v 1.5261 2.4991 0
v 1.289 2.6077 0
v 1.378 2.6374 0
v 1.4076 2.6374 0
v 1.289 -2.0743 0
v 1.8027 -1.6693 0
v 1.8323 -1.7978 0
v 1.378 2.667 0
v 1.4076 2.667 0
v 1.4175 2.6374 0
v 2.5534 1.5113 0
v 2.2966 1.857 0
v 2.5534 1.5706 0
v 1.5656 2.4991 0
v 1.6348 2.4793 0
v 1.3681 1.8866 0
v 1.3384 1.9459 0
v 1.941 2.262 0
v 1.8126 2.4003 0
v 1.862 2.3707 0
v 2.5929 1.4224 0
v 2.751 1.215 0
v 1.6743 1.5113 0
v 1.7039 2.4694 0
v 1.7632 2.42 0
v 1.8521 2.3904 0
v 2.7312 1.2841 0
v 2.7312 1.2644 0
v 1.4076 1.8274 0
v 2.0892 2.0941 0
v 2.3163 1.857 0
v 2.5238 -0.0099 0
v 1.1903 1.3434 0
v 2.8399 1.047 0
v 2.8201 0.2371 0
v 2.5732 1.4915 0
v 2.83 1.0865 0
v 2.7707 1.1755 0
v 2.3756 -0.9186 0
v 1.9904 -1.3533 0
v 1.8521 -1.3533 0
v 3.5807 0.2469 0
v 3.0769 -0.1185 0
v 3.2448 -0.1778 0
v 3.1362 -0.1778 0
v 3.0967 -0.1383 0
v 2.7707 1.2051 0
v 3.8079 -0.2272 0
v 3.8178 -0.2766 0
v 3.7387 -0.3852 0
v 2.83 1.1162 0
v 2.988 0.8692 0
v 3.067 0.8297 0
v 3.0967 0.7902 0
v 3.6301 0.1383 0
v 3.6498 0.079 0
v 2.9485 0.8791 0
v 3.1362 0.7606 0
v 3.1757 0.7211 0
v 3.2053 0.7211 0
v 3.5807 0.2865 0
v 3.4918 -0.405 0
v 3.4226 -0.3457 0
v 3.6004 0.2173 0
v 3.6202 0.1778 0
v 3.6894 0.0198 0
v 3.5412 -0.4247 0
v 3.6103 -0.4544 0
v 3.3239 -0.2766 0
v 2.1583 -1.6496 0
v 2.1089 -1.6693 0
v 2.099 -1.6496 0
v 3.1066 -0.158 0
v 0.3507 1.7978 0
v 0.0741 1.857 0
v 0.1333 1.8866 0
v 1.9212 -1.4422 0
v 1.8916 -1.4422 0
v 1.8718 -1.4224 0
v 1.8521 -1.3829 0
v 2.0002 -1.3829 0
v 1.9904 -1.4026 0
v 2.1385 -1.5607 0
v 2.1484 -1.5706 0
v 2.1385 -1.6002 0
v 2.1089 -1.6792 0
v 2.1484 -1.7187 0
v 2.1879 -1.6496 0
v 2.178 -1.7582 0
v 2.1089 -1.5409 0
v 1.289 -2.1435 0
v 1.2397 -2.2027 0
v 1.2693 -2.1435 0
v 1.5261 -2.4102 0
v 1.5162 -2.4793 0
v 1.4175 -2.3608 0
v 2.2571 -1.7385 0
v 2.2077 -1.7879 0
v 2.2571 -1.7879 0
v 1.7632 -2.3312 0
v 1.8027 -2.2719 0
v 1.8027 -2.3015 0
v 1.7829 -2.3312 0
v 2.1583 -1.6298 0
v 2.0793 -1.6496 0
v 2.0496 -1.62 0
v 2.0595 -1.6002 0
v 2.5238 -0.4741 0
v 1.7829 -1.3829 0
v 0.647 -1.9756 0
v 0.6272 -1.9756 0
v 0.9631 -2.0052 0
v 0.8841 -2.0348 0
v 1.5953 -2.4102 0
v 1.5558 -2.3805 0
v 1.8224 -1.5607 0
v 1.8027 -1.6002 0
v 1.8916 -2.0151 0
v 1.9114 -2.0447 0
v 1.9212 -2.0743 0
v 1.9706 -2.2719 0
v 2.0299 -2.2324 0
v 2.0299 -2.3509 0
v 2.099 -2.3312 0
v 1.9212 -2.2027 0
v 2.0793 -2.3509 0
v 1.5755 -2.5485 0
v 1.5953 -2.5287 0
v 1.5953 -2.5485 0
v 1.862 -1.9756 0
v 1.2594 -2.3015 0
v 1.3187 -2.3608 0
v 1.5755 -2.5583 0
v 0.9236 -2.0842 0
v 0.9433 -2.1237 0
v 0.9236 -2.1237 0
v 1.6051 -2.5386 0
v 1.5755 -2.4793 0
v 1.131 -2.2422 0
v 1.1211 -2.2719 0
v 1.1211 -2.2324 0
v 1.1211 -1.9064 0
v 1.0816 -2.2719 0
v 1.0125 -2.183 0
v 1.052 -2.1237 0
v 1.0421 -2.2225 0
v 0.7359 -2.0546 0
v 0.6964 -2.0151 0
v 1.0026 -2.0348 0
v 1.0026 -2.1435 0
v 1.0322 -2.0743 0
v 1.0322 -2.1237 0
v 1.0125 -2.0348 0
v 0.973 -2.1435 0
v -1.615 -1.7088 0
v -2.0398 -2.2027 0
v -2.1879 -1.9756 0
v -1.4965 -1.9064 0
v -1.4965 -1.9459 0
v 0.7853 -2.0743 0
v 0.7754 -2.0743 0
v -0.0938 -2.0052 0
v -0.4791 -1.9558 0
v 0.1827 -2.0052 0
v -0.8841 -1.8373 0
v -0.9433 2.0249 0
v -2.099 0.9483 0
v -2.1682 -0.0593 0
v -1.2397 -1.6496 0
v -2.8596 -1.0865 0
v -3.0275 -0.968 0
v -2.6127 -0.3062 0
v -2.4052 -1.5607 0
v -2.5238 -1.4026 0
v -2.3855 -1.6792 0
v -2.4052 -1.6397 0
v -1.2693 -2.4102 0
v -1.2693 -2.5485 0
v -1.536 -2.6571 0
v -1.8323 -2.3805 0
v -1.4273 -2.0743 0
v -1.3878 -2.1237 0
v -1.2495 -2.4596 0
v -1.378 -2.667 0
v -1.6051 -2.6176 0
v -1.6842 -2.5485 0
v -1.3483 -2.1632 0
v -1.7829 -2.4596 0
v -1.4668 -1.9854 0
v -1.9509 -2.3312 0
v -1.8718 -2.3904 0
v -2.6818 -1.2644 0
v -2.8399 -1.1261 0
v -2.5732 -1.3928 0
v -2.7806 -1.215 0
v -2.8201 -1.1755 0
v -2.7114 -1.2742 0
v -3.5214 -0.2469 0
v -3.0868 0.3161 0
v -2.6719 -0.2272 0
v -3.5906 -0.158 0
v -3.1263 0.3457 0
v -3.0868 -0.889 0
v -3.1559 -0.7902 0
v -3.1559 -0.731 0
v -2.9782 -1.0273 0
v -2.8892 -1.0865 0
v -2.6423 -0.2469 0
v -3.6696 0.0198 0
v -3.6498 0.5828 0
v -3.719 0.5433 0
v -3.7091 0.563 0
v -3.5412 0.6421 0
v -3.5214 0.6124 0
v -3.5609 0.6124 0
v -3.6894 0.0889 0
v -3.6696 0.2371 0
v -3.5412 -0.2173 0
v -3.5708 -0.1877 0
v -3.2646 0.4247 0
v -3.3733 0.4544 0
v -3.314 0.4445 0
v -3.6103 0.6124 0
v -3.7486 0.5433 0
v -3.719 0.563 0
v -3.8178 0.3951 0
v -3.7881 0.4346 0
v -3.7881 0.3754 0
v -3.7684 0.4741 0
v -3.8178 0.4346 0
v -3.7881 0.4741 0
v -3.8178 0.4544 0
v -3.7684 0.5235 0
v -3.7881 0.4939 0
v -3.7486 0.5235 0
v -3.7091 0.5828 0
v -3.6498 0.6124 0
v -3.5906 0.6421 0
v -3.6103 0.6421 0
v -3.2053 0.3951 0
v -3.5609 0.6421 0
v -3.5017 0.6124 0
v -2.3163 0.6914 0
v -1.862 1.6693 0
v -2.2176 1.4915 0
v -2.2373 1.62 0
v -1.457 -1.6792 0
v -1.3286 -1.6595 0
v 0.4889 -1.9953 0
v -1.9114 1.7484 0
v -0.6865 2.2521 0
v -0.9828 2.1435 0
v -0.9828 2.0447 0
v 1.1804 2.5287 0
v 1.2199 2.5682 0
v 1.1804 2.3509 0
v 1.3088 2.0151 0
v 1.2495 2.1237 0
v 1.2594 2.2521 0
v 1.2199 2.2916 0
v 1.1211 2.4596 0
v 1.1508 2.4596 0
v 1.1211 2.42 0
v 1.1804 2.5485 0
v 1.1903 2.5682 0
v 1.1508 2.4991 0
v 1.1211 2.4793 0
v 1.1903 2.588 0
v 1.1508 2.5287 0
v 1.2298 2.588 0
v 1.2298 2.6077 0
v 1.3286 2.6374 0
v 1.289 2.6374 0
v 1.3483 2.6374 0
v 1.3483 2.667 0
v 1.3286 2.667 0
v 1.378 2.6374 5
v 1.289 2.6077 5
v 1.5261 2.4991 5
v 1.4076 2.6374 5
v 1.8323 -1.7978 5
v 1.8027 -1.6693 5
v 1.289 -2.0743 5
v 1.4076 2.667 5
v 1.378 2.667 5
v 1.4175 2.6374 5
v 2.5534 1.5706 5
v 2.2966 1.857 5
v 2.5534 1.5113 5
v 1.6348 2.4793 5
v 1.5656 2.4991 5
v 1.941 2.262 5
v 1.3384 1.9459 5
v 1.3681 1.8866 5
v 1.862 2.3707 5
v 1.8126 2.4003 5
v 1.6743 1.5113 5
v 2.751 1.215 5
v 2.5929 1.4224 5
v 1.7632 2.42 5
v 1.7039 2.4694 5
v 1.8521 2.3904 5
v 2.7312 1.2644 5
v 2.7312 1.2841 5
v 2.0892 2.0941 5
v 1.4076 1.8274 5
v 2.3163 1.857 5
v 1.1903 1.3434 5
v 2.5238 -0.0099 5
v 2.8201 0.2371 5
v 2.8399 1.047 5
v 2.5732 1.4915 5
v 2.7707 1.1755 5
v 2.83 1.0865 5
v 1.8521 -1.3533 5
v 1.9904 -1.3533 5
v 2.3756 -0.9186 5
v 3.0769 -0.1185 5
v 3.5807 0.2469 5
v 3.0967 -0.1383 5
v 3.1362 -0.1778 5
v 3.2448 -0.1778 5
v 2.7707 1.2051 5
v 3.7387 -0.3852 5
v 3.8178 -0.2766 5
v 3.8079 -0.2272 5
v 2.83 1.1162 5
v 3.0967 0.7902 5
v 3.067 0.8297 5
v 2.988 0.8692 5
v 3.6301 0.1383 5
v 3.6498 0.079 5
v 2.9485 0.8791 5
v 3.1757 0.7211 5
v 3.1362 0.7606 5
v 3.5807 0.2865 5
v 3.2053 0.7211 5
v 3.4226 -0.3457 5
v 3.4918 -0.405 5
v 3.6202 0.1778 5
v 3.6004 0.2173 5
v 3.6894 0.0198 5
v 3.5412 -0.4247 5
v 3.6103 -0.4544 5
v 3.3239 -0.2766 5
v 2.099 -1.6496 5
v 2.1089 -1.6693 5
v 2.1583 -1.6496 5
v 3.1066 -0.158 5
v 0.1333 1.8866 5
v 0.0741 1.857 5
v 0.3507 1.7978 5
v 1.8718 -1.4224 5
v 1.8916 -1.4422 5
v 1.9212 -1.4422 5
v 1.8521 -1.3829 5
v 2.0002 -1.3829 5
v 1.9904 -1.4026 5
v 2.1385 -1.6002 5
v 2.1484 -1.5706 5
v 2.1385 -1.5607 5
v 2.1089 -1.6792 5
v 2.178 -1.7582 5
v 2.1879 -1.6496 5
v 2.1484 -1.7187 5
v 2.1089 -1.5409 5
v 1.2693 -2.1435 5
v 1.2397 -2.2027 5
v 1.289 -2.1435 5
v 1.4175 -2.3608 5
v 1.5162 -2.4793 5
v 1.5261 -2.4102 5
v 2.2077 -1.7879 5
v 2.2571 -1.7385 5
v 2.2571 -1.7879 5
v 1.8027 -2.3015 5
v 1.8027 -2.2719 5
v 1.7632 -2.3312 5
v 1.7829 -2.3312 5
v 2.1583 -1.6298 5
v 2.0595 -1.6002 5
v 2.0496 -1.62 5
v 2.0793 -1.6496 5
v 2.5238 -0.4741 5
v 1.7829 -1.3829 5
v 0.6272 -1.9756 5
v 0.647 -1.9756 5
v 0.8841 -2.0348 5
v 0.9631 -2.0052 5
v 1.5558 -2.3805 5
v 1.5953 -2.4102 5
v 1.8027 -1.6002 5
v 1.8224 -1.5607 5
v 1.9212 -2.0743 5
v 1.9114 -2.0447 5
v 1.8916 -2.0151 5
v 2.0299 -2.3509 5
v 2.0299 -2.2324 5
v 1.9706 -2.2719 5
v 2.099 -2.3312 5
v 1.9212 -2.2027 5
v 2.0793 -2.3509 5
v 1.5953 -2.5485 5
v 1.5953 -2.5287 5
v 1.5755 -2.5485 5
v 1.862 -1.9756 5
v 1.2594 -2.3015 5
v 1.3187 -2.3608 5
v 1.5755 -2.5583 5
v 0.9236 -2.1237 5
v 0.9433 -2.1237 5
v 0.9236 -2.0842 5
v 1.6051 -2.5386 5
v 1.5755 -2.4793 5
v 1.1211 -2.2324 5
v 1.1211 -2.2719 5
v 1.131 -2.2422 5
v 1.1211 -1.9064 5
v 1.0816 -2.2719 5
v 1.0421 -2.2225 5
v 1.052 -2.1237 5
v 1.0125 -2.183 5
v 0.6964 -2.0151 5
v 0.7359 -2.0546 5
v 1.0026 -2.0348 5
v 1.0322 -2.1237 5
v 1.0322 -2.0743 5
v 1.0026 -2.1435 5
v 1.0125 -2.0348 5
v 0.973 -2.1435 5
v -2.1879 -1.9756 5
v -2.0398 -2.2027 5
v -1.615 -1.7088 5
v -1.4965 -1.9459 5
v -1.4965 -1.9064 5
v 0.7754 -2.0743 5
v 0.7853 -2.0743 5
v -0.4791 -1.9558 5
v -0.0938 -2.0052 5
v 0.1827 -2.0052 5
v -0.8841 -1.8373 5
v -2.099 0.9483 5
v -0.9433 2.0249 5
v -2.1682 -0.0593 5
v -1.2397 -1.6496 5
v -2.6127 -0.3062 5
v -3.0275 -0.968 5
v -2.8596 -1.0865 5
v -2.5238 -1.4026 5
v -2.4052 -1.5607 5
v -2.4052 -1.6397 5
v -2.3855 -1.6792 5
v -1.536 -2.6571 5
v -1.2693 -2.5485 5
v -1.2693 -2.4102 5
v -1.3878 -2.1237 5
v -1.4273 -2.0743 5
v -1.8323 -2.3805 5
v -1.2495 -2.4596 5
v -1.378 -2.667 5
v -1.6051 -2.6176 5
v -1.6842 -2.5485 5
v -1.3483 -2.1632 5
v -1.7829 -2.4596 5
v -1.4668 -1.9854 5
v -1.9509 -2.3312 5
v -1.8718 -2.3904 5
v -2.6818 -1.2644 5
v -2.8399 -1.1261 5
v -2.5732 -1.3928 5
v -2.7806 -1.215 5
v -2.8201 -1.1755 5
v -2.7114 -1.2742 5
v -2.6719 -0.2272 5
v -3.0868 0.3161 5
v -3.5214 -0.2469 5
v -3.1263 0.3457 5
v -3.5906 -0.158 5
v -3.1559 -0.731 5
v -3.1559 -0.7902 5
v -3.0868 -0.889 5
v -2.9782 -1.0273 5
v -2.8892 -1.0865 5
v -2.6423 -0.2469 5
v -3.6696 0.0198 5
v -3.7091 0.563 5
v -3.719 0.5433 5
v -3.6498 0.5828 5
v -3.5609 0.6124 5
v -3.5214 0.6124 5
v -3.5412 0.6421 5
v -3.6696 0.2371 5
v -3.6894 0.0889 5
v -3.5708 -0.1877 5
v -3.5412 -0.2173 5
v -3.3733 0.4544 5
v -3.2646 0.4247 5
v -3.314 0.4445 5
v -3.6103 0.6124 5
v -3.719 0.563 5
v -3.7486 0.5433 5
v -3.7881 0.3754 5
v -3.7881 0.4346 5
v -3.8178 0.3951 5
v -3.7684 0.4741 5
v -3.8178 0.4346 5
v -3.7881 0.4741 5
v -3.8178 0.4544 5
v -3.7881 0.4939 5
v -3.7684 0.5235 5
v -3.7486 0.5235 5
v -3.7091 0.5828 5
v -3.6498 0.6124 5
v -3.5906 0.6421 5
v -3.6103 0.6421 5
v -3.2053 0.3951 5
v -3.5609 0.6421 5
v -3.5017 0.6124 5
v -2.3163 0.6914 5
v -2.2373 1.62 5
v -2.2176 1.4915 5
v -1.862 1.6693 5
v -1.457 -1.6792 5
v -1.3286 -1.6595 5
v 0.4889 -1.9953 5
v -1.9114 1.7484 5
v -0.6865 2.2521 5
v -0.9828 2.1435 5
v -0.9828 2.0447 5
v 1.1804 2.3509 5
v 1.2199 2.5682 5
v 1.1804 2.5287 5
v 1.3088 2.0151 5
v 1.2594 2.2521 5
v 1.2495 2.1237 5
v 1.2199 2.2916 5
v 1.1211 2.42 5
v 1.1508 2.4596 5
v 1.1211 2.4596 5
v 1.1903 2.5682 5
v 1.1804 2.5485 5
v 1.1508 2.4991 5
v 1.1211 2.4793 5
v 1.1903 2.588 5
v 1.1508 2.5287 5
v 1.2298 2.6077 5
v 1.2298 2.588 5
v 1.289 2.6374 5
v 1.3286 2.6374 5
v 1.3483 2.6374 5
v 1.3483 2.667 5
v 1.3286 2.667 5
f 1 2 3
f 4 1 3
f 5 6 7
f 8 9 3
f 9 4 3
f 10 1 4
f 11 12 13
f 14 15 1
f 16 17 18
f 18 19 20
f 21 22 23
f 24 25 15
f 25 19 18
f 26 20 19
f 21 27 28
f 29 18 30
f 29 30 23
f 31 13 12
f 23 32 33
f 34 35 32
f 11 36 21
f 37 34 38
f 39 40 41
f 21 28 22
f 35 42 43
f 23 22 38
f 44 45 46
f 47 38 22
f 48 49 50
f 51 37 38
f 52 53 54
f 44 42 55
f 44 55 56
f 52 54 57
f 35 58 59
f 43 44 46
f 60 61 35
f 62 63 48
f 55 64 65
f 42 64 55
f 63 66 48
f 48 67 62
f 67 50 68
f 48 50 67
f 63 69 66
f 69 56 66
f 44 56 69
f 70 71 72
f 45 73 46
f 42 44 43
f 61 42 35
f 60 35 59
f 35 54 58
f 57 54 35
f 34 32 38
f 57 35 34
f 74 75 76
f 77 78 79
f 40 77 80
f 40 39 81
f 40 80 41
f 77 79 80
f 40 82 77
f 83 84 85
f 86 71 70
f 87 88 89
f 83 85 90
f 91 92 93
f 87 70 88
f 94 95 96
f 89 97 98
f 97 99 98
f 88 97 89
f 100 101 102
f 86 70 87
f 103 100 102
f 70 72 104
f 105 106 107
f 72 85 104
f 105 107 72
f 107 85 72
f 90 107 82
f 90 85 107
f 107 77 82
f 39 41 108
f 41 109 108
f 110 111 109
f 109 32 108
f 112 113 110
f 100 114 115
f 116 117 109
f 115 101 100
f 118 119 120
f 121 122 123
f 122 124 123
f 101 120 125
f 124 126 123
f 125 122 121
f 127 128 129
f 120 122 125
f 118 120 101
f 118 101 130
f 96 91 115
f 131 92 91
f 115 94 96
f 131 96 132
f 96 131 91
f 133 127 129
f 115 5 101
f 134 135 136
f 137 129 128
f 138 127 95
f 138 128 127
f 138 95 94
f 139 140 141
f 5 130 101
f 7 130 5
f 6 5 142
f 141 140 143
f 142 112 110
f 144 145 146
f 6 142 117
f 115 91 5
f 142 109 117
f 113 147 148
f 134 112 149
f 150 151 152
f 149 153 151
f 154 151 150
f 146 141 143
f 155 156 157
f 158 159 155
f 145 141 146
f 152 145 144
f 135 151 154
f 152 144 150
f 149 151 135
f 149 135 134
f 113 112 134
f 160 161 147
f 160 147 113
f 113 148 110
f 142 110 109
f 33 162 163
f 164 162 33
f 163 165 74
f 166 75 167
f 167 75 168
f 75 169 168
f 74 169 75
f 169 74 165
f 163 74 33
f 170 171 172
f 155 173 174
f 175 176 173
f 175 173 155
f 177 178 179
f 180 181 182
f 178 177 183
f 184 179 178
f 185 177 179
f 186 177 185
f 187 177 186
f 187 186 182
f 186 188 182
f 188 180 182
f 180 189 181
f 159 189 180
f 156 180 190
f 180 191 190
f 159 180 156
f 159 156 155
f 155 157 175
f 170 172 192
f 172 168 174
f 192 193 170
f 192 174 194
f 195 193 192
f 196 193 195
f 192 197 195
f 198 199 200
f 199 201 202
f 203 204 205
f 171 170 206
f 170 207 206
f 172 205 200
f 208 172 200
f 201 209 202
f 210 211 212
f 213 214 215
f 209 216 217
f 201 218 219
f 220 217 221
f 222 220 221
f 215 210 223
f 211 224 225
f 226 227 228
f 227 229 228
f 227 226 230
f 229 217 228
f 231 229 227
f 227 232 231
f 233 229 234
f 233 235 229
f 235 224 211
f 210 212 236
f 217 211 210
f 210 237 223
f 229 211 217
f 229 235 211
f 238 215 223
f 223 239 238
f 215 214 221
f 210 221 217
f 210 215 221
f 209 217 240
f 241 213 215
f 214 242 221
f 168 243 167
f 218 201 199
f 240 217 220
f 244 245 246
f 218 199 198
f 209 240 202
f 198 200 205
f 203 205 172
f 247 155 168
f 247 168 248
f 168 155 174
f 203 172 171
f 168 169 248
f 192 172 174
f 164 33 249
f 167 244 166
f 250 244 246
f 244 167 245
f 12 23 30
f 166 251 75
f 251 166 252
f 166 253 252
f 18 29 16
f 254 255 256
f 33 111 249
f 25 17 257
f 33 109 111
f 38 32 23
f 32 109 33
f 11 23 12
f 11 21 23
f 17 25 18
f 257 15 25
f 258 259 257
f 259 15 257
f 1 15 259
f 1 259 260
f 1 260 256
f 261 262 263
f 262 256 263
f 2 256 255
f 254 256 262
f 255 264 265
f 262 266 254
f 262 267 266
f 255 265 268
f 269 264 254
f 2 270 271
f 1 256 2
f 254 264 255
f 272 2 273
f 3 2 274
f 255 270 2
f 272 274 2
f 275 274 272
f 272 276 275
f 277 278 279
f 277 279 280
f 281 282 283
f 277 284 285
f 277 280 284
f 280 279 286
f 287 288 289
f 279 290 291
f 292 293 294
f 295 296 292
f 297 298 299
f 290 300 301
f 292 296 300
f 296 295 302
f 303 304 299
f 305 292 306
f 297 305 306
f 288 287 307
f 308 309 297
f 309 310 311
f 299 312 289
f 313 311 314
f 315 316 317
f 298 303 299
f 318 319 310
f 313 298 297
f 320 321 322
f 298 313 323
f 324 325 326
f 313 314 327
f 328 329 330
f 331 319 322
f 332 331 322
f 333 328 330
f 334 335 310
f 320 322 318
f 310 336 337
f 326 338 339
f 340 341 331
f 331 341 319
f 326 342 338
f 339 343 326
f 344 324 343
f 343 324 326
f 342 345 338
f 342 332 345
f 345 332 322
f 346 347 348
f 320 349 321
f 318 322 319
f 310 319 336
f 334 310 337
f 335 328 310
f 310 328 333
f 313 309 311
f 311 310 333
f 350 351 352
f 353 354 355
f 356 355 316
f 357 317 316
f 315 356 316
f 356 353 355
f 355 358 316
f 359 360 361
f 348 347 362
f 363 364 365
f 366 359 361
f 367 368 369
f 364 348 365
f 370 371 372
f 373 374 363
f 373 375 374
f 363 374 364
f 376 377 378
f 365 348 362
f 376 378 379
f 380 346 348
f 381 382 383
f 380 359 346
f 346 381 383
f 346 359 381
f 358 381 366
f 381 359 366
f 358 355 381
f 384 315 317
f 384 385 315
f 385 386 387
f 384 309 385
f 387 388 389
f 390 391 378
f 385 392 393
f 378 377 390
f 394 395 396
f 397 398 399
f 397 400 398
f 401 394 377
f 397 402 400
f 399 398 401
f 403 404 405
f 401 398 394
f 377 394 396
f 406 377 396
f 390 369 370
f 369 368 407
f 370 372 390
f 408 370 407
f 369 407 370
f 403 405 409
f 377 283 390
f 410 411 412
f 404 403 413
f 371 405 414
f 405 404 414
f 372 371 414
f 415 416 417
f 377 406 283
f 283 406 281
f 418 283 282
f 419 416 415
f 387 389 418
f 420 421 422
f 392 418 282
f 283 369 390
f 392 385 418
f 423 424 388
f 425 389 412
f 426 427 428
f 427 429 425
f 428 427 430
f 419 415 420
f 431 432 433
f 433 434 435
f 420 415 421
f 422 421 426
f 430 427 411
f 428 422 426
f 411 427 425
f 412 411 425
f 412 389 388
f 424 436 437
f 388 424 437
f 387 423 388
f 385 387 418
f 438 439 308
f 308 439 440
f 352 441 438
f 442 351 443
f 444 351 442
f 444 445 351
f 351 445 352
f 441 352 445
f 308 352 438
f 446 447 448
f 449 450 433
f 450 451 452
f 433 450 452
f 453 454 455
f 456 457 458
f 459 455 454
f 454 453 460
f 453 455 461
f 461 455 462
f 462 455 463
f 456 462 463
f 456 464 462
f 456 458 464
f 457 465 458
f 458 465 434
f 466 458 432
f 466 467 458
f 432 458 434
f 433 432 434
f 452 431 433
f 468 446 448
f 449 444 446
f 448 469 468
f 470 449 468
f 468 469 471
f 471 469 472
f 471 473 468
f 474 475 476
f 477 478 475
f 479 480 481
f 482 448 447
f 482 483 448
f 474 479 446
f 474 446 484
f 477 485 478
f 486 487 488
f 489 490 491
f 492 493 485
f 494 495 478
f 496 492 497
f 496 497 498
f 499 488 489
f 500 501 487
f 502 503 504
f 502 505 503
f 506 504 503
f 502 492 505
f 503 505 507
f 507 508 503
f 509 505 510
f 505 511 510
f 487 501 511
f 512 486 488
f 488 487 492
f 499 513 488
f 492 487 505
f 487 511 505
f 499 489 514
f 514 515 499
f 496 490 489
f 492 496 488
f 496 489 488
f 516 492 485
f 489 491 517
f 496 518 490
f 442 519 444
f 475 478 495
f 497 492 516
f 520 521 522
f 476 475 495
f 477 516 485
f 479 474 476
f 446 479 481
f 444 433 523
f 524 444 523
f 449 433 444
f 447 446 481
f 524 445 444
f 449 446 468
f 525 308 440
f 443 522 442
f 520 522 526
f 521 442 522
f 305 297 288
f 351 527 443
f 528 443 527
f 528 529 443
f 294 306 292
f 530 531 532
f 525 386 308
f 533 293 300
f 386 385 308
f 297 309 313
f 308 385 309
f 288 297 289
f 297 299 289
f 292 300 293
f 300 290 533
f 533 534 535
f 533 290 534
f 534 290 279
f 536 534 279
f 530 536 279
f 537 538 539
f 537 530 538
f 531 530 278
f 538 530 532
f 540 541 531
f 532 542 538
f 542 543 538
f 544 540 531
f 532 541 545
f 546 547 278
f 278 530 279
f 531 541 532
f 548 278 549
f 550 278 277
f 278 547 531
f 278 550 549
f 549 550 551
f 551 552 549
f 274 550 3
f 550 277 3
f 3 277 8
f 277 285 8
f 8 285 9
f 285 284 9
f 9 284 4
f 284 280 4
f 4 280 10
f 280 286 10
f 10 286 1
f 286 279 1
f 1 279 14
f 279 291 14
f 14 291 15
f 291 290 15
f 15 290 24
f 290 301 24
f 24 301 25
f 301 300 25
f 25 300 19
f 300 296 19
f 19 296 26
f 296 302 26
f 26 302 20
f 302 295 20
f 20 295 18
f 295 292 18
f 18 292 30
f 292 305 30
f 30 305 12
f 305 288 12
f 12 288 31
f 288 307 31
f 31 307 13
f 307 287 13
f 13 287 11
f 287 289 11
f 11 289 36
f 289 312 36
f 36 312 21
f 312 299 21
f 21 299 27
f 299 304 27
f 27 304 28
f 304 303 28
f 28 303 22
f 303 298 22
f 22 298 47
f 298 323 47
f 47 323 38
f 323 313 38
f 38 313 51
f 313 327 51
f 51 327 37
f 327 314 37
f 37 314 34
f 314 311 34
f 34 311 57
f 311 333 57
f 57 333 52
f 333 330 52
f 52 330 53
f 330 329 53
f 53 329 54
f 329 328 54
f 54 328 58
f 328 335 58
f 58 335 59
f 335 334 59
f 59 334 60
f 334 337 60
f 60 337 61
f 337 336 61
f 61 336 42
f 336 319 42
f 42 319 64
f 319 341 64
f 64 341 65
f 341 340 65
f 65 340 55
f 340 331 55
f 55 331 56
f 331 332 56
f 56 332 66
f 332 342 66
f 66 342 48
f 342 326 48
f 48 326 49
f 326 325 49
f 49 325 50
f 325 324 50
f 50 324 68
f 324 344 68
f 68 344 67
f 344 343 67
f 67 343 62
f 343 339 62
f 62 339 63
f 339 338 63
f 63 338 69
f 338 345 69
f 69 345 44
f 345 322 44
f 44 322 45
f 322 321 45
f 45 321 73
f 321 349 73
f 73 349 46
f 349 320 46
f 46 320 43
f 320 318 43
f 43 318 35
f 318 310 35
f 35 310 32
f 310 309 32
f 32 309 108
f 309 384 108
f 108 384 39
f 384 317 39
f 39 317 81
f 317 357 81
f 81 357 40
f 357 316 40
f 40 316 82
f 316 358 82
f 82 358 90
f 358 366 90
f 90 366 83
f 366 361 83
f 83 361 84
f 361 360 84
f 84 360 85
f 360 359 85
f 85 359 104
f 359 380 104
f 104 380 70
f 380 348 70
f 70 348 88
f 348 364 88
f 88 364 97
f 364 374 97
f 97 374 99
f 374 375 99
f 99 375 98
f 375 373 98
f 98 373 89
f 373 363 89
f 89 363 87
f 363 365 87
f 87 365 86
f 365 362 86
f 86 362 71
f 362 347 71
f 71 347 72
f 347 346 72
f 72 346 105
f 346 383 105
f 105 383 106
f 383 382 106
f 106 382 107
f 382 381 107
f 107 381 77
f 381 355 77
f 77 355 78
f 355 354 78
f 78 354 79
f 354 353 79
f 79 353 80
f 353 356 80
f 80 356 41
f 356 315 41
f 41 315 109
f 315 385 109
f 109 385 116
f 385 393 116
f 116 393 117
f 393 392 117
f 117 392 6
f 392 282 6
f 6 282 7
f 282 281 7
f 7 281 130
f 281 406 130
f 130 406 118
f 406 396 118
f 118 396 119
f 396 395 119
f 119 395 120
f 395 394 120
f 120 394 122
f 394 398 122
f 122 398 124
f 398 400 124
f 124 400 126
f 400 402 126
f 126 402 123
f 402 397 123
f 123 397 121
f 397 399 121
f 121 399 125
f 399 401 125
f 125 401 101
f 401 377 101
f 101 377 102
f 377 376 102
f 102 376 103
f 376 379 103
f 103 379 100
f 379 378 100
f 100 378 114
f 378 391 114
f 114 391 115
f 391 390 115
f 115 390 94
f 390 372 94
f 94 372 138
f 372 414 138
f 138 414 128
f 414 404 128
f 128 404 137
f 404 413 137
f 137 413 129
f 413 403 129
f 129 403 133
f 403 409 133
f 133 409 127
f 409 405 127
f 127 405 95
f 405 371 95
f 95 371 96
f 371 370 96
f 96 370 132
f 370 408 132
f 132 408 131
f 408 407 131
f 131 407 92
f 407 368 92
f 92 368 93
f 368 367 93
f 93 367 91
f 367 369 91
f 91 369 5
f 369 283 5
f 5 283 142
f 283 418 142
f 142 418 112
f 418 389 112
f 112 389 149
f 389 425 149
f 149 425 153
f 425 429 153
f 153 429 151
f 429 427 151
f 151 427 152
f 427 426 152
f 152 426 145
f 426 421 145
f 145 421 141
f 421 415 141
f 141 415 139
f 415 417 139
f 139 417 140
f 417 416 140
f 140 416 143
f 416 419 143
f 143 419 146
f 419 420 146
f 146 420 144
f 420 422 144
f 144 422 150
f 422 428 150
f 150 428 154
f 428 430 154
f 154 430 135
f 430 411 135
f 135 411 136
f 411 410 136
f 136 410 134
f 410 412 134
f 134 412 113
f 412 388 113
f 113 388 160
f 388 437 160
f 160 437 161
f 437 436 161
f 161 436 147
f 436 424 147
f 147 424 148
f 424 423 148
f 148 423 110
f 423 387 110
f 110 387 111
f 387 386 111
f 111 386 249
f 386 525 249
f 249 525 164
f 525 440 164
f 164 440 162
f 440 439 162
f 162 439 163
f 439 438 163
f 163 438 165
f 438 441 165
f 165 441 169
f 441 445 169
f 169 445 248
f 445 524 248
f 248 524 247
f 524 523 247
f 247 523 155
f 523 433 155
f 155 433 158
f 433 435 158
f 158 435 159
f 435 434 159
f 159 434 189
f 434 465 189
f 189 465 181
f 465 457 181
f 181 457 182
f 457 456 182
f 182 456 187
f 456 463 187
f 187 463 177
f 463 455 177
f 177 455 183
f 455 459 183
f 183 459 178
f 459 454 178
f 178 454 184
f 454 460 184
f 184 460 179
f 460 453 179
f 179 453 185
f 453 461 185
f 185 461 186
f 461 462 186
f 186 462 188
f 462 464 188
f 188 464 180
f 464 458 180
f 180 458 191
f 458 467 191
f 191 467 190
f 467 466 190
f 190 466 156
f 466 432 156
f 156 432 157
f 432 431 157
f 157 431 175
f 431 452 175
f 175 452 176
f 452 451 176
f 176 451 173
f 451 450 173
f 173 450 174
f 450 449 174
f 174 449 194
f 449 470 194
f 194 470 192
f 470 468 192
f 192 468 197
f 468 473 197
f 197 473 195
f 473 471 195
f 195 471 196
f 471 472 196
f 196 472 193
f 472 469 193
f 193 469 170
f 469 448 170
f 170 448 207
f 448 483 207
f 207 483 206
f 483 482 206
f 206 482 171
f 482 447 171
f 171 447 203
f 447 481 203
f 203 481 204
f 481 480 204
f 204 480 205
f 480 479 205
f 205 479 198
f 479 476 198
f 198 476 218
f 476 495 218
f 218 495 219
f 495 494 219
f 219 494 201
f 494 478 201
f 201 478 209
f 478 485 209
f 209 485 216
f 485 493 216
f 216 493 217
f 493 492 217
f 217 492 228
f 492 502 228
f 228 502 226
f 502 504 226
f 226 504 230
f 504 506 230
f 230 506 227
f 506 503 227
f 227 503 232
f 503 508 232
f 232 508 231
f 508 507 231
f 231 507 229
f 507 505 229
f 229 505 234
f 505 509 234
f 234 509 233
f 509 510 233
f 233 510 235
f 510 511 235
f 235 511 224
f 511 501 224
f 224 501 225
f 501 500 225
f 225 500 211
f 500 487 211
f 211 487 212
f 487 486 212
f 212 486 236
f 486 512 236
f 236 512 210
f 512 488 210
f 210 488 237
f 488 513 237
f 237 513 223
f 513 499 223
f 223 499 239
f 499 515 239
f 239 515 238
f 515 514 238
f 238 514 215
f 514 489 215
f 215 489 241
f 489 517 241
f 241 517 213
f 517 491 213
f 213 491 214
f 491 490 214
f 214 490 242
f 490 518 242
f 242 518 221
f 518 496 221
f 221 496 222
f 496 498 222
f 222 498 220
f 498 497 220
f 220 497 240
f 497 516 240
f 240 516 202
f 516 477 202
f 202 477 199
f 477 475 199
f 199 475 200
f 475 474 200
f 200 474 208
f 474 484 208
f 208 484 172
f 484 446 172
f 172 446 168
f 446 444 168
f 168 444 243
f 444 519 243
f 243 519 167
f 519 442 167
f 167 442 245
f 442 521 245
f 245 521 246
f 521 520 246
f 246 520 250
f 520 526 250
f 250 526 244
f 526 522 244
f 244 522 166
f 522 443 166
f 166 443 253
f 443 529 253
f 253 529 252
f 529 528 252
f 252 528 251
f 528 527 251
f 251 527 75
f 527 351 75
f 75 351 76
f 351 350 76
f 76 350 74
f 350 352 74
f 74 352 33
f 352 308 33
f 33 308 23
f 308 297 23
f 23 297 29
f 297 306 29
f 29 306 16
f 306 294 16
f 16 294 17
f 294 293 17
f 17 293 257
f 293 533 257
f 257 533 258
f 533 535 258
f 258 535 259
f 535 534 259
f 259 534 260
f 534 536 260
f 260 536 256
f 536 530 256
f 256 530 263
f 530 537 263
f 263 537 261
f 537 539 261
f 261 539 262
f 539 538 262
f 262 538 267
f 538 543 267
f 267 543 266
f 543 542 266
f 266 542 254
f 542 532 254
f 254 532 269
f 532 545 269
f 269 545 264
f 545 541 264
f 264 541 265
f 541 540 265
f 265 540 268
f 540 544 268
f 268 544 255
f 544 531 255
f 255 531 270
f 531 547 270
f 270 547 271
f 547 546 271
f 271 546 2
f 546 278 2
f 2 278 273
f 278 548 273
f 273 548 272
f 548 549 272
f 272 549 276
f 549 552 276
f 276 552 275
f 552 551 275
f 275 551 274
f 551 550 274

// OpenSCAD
// Module names are of the form poly_<inkscape-path-id>().  As a result,
// you can associate a polygon in this OpenSCAD program with the corresponding
// SVG element in the Inkscape document by looking for the XML element with
// the attribute id="inkscape-path-id".

// fudge value is used to ensure that subtracted solids are a tad taller
// in the z dimension than the polygon being subtracted from.  This helps
// keep the resulting .stl file manifold.
fudge = 0.1;

module poly_path4271(h)
{
  scale([25.4/90, -25.4/90, 1]) union()
  {
    linear_extrude(height=h)
      polygon([[-3.342500,-7.175000],[-3.482500,-7.245000],[-3.482500,-7.595000],[-2.432500,-7.980000],[0.262500,-6.580000],[0.472500,-6.685000],[1.242500,-6.370000],[4.217500,-4.760000],[5.932500,-5.355000],[4.987500,-6.475000],[4.847500,-6.685000],[4.742500,-6.895000],[4.637500,-7.140000],[4.427500,-7.525000],[4.462500,-7.980000],[4.322500,-8.120000],[4.182500,-8.330000],[3.972500,-8.575000],[4.077500,-8.575000],[3.972500,-8.575000],[3.972500,-8.715000],[4.077500,-8.715000],[3.972500,-8.785000],[4.077500,-8.855000],[4.182500,-8.960000],[4.077500,-8.960000],[4.182500,-9.030000],[4.217500,-9.100000],[4.217500,-9.170000],[4.322500,-9.100000],[4.357500,-9.170000],[4.357500,-9.240000],[4.462500,-9.240000],[4.567500,-9.240000],[4.567500,-9.345000],[4.637500,-9.345000],[4.707500,-9.345000],[4.707500,-9.450000],[4.777500,-9.450000],[4.777500,-9.345000],[4.882500,-9.345000],[4.882500,-9.450000],[4.987500,-9.450000],[4.987500,-9.345000],[5.022500,-9.345000],[5.407500,-8.855000],[5.547500,-8.855000],[5.792500,-8.785000],[6.037500,-8.750000],[6.247500,-8.575000],[6.422500,-8.505000],[6.562500,-8.470000],[6.597500,-8.400000],[6.877500,-8.015000],[7.402500,-7.420000],[8.137500,-6.580000],[8.207500,-6.580000],[9.047500,-5.565000],[9.047500,-5.355000],[9.117500,-5.285000],[9.187500,-5.040000],[9.677500,-4.550000],[9.677500,-4.480000],[9.747500,-4.305000],[9.817500,-4.270000],[9.817500,-4.165000],[9.992500,-3.990000],[10.027500,-3.955000],[10.027500,-3.850000],[10.062500,-3.710000],[10.447500,-3.115000],[10.587500,-3.080000],[10.727500,-3.010000],[10.867500,-2.940000],[10.972500,-2.800000],[11.112500,-2.695000],[11.252500,-2.555000],[11.357500,-2.555000],[12.687500,-1.015000],[12.687500,-0.875000],[12.757500,-0.770000],[12.827500,-0.630000],[12.862500,-0.490000],[12.932500,-0.280000],[13.072500,-0.070000],[13.492500,0.805000],[13.527500,0.980000],[13.247500,1.365000],[12.792500,1.610000],[12.547500,1.505000],[12.372500,1.435000],[12.127500,1.225000],[11.777500,0.980000],[11.497500,0.630000],[11.252500,0.630000],[11.112500,0.630000],[11.007500,0.560000],[10.972500,0.490000],[10.902500,0.420000],[9.992500,-0.840000],[8.942500,0.035000],[8.942500,1.680000],[8.417500,3.255000],[7.087500,4.900000],[7.052500,4.795000],[7.052500,4.970000],[7.472500,5.460000],[7.577500,5.530000],[7.612500,5.565000],[7.577500,5.670000],[7.647500,5.775000],[7.647500,5.845000],[7.752500,5.845000],[7.997500,6.160000],[7.997500,6.195000],[7.997500,6.335000],[7.822500,6.335000],[7.717500,6.230000],[7.612500,6.090000],[7.472500,5.950000],[7.472500,5.915000],[7.437500,5.845000],[7.367500,5.845000],[7.262500,5.740000],[7.297500,5.670000],[6.807500,5.110000],[6.702500,5.110000],[6.632500,5.040000],[6.597500,4.970000],[6.562500,4.900000],[6.562500,4.795000],[6.317500,4.900000],[6.457500,5.530000],[6.387500,5.670000],[6.387500,5.915000],[6.492500,6.370000],[6.597500,7.000000],[6.702500,7.140000],[6.772500,7.245000],[6.807500,7.350000],[7.192500,7.910000],[7.437500,8.260000],[7.367500,8.330000],[7.192500,8.330000],[6.982500,8.050000],[6.807500,7.805000],[6.387500,8.050000],[6.387500,8.155000],[6.317500,8.260000],[6.247500,8.260000],[5.652500,8.540000],[5.512500,8.435000],[5.407500,8.540000],[5.582500,8.785000],[5.652500,8.960000],[5.687500,8.995000],[5.652500,9.030000],[5.582500,9.065000],[5.582500,9.030000],[5.372500,8.785000],[5.022500,8.365000],[4.777500,8.365000],[4.672500,8.365000],[4.462500,8.155000],[4.392500,7.805000],[4.462500,7.665000],[4.497500,7.595000],[4.567500,7.595000],[4.567500,7.525000],[4.567500,7.350000],[3.972500,6.755000],[3.412500,7.105000],[3.552500,7.210000],[3.587500,7.210000],[3.657500,7.350000],[3.657500,7.385000],[3.657500,7.525000],[3.727500,7.525000],[3.972500,7.910000],[4.007500,7.945000],[3.972500,8.050000],[3.832500,8.050000],[3.692500,7.875000],[3.587500,7.735000],[3.552500,7.595000],[3.447500,7.595000],[3.342500,7.525000],[3.272500,7.525000],[3.272500,7.385000],[3.132500,7.210000],[2.782500,7.350000],[2.747500,7.350000],[2.607500,7.280000],[2.467500,7.140000],[2.292500,7.000000],[2.222500,7.000000],[1.732500,7.070000],[0.647500,7.105000],[-0.332500,7.105000],[-1.697500,6.930000],[-3.132500,6.510000],[-4.392500,5.845000],[-4.707500,5.880000],[-5.162500,5.950000],[-5.722500,6.055000],[-5.302500,6.755000],[-5.302500,6.895000],[-5.197500,7.035000],[-5.057500,7.350000],[-4.917500,7.525000],[-4.777500,7.665000],[-4.497500,8.540000],[-4.427500,8.715000],[-4.497500,9.030000],[-4.882500,9.450000],[-5.442500,9.415000],[-5.687500,9.275000],[-5.967500,9.030000],[-6.317500,8.715000],[-6.492500,8.435000],[-6.632500,8.470000],[-6.912500,8.260000],[-7.227500,7.805000],[-7.752500,7.000000],[-8.452500,5.950000],[-8.522500,5.810000],[-8.522500,5.530000],[-8.942500,4.970000],[-9.117500,4.935000],[-9.502500,4.480000],[-9.607500,4.515000],[-9.852500,4.305000],[-9.992500,4.165000],[-10.062500,3.990000],[-10.132500,3.850000],[-10.237500,3.850000],[-10.552500,3.640000],[-10.727500,3.430000],[-10.937500,3.150000],[-11.182500,2.800000],[-11.182500,2.590000],[-12.477500,0.875000],[-12.547500,0.770000],[-12.652500,0.665000],[-12.722500,0.560000],[-13.002500,-0.070000],[-13.072500,-0.315000],[-13.002500,-0.840000],[-13.422500,-1.330000],[-13.527500,-1.400000],[-13.527500,-1.540000],[-13.422500,-1.540000],[-13.527500,-1.610000],[-13.422500,-1.680000],[-13.352500,-1.680000],[-13.422500,-1.750000],[-13.352500,-1.855000],[-13.282500,-1.855000],[-13.282500,-1.925000],[-13.177500,-1.995000],[-13.177500,-1.925000],[-13.142500,-1.995000],[-13.142500,-2.065000],[-13.002500,-2.065000],[-12.932500,-2.065000],[-12.932500,-2.170000],[-12.862500,-2.170000],[-12.792500,-2.170000],[-12.792500,-2.275000],[-12.722500,-2.275000],[-12.617500,-2.170000],[-12.617500,-2.275000],[-12.547500,-2.275000],[-12.477500,-2.170000],[-12.407500,-2.170000],[-11.952500,-1.610000],[-11.742500,-1.575000],[-11.567500,-1.505000],[-11.357500,-1.400000],[-11.077500,-1.225000],[-10.937500,-1.120000],[-9.467500,0.805000],[-9.362500,0.875000],[-9.257500,1.085000],[-7.682500,0.210000],[-8.207500,-2.450000],[-7.437500,-3.360000],[-7.682500,-4.480000],[-7.857500,-5.285000],[-7.927500,-5.740000],[-6.772500,-6.195000],[-6.597500,-5.915000],[-3.342500,-7.175000]]);
  }
}

poly_path4271(5);
